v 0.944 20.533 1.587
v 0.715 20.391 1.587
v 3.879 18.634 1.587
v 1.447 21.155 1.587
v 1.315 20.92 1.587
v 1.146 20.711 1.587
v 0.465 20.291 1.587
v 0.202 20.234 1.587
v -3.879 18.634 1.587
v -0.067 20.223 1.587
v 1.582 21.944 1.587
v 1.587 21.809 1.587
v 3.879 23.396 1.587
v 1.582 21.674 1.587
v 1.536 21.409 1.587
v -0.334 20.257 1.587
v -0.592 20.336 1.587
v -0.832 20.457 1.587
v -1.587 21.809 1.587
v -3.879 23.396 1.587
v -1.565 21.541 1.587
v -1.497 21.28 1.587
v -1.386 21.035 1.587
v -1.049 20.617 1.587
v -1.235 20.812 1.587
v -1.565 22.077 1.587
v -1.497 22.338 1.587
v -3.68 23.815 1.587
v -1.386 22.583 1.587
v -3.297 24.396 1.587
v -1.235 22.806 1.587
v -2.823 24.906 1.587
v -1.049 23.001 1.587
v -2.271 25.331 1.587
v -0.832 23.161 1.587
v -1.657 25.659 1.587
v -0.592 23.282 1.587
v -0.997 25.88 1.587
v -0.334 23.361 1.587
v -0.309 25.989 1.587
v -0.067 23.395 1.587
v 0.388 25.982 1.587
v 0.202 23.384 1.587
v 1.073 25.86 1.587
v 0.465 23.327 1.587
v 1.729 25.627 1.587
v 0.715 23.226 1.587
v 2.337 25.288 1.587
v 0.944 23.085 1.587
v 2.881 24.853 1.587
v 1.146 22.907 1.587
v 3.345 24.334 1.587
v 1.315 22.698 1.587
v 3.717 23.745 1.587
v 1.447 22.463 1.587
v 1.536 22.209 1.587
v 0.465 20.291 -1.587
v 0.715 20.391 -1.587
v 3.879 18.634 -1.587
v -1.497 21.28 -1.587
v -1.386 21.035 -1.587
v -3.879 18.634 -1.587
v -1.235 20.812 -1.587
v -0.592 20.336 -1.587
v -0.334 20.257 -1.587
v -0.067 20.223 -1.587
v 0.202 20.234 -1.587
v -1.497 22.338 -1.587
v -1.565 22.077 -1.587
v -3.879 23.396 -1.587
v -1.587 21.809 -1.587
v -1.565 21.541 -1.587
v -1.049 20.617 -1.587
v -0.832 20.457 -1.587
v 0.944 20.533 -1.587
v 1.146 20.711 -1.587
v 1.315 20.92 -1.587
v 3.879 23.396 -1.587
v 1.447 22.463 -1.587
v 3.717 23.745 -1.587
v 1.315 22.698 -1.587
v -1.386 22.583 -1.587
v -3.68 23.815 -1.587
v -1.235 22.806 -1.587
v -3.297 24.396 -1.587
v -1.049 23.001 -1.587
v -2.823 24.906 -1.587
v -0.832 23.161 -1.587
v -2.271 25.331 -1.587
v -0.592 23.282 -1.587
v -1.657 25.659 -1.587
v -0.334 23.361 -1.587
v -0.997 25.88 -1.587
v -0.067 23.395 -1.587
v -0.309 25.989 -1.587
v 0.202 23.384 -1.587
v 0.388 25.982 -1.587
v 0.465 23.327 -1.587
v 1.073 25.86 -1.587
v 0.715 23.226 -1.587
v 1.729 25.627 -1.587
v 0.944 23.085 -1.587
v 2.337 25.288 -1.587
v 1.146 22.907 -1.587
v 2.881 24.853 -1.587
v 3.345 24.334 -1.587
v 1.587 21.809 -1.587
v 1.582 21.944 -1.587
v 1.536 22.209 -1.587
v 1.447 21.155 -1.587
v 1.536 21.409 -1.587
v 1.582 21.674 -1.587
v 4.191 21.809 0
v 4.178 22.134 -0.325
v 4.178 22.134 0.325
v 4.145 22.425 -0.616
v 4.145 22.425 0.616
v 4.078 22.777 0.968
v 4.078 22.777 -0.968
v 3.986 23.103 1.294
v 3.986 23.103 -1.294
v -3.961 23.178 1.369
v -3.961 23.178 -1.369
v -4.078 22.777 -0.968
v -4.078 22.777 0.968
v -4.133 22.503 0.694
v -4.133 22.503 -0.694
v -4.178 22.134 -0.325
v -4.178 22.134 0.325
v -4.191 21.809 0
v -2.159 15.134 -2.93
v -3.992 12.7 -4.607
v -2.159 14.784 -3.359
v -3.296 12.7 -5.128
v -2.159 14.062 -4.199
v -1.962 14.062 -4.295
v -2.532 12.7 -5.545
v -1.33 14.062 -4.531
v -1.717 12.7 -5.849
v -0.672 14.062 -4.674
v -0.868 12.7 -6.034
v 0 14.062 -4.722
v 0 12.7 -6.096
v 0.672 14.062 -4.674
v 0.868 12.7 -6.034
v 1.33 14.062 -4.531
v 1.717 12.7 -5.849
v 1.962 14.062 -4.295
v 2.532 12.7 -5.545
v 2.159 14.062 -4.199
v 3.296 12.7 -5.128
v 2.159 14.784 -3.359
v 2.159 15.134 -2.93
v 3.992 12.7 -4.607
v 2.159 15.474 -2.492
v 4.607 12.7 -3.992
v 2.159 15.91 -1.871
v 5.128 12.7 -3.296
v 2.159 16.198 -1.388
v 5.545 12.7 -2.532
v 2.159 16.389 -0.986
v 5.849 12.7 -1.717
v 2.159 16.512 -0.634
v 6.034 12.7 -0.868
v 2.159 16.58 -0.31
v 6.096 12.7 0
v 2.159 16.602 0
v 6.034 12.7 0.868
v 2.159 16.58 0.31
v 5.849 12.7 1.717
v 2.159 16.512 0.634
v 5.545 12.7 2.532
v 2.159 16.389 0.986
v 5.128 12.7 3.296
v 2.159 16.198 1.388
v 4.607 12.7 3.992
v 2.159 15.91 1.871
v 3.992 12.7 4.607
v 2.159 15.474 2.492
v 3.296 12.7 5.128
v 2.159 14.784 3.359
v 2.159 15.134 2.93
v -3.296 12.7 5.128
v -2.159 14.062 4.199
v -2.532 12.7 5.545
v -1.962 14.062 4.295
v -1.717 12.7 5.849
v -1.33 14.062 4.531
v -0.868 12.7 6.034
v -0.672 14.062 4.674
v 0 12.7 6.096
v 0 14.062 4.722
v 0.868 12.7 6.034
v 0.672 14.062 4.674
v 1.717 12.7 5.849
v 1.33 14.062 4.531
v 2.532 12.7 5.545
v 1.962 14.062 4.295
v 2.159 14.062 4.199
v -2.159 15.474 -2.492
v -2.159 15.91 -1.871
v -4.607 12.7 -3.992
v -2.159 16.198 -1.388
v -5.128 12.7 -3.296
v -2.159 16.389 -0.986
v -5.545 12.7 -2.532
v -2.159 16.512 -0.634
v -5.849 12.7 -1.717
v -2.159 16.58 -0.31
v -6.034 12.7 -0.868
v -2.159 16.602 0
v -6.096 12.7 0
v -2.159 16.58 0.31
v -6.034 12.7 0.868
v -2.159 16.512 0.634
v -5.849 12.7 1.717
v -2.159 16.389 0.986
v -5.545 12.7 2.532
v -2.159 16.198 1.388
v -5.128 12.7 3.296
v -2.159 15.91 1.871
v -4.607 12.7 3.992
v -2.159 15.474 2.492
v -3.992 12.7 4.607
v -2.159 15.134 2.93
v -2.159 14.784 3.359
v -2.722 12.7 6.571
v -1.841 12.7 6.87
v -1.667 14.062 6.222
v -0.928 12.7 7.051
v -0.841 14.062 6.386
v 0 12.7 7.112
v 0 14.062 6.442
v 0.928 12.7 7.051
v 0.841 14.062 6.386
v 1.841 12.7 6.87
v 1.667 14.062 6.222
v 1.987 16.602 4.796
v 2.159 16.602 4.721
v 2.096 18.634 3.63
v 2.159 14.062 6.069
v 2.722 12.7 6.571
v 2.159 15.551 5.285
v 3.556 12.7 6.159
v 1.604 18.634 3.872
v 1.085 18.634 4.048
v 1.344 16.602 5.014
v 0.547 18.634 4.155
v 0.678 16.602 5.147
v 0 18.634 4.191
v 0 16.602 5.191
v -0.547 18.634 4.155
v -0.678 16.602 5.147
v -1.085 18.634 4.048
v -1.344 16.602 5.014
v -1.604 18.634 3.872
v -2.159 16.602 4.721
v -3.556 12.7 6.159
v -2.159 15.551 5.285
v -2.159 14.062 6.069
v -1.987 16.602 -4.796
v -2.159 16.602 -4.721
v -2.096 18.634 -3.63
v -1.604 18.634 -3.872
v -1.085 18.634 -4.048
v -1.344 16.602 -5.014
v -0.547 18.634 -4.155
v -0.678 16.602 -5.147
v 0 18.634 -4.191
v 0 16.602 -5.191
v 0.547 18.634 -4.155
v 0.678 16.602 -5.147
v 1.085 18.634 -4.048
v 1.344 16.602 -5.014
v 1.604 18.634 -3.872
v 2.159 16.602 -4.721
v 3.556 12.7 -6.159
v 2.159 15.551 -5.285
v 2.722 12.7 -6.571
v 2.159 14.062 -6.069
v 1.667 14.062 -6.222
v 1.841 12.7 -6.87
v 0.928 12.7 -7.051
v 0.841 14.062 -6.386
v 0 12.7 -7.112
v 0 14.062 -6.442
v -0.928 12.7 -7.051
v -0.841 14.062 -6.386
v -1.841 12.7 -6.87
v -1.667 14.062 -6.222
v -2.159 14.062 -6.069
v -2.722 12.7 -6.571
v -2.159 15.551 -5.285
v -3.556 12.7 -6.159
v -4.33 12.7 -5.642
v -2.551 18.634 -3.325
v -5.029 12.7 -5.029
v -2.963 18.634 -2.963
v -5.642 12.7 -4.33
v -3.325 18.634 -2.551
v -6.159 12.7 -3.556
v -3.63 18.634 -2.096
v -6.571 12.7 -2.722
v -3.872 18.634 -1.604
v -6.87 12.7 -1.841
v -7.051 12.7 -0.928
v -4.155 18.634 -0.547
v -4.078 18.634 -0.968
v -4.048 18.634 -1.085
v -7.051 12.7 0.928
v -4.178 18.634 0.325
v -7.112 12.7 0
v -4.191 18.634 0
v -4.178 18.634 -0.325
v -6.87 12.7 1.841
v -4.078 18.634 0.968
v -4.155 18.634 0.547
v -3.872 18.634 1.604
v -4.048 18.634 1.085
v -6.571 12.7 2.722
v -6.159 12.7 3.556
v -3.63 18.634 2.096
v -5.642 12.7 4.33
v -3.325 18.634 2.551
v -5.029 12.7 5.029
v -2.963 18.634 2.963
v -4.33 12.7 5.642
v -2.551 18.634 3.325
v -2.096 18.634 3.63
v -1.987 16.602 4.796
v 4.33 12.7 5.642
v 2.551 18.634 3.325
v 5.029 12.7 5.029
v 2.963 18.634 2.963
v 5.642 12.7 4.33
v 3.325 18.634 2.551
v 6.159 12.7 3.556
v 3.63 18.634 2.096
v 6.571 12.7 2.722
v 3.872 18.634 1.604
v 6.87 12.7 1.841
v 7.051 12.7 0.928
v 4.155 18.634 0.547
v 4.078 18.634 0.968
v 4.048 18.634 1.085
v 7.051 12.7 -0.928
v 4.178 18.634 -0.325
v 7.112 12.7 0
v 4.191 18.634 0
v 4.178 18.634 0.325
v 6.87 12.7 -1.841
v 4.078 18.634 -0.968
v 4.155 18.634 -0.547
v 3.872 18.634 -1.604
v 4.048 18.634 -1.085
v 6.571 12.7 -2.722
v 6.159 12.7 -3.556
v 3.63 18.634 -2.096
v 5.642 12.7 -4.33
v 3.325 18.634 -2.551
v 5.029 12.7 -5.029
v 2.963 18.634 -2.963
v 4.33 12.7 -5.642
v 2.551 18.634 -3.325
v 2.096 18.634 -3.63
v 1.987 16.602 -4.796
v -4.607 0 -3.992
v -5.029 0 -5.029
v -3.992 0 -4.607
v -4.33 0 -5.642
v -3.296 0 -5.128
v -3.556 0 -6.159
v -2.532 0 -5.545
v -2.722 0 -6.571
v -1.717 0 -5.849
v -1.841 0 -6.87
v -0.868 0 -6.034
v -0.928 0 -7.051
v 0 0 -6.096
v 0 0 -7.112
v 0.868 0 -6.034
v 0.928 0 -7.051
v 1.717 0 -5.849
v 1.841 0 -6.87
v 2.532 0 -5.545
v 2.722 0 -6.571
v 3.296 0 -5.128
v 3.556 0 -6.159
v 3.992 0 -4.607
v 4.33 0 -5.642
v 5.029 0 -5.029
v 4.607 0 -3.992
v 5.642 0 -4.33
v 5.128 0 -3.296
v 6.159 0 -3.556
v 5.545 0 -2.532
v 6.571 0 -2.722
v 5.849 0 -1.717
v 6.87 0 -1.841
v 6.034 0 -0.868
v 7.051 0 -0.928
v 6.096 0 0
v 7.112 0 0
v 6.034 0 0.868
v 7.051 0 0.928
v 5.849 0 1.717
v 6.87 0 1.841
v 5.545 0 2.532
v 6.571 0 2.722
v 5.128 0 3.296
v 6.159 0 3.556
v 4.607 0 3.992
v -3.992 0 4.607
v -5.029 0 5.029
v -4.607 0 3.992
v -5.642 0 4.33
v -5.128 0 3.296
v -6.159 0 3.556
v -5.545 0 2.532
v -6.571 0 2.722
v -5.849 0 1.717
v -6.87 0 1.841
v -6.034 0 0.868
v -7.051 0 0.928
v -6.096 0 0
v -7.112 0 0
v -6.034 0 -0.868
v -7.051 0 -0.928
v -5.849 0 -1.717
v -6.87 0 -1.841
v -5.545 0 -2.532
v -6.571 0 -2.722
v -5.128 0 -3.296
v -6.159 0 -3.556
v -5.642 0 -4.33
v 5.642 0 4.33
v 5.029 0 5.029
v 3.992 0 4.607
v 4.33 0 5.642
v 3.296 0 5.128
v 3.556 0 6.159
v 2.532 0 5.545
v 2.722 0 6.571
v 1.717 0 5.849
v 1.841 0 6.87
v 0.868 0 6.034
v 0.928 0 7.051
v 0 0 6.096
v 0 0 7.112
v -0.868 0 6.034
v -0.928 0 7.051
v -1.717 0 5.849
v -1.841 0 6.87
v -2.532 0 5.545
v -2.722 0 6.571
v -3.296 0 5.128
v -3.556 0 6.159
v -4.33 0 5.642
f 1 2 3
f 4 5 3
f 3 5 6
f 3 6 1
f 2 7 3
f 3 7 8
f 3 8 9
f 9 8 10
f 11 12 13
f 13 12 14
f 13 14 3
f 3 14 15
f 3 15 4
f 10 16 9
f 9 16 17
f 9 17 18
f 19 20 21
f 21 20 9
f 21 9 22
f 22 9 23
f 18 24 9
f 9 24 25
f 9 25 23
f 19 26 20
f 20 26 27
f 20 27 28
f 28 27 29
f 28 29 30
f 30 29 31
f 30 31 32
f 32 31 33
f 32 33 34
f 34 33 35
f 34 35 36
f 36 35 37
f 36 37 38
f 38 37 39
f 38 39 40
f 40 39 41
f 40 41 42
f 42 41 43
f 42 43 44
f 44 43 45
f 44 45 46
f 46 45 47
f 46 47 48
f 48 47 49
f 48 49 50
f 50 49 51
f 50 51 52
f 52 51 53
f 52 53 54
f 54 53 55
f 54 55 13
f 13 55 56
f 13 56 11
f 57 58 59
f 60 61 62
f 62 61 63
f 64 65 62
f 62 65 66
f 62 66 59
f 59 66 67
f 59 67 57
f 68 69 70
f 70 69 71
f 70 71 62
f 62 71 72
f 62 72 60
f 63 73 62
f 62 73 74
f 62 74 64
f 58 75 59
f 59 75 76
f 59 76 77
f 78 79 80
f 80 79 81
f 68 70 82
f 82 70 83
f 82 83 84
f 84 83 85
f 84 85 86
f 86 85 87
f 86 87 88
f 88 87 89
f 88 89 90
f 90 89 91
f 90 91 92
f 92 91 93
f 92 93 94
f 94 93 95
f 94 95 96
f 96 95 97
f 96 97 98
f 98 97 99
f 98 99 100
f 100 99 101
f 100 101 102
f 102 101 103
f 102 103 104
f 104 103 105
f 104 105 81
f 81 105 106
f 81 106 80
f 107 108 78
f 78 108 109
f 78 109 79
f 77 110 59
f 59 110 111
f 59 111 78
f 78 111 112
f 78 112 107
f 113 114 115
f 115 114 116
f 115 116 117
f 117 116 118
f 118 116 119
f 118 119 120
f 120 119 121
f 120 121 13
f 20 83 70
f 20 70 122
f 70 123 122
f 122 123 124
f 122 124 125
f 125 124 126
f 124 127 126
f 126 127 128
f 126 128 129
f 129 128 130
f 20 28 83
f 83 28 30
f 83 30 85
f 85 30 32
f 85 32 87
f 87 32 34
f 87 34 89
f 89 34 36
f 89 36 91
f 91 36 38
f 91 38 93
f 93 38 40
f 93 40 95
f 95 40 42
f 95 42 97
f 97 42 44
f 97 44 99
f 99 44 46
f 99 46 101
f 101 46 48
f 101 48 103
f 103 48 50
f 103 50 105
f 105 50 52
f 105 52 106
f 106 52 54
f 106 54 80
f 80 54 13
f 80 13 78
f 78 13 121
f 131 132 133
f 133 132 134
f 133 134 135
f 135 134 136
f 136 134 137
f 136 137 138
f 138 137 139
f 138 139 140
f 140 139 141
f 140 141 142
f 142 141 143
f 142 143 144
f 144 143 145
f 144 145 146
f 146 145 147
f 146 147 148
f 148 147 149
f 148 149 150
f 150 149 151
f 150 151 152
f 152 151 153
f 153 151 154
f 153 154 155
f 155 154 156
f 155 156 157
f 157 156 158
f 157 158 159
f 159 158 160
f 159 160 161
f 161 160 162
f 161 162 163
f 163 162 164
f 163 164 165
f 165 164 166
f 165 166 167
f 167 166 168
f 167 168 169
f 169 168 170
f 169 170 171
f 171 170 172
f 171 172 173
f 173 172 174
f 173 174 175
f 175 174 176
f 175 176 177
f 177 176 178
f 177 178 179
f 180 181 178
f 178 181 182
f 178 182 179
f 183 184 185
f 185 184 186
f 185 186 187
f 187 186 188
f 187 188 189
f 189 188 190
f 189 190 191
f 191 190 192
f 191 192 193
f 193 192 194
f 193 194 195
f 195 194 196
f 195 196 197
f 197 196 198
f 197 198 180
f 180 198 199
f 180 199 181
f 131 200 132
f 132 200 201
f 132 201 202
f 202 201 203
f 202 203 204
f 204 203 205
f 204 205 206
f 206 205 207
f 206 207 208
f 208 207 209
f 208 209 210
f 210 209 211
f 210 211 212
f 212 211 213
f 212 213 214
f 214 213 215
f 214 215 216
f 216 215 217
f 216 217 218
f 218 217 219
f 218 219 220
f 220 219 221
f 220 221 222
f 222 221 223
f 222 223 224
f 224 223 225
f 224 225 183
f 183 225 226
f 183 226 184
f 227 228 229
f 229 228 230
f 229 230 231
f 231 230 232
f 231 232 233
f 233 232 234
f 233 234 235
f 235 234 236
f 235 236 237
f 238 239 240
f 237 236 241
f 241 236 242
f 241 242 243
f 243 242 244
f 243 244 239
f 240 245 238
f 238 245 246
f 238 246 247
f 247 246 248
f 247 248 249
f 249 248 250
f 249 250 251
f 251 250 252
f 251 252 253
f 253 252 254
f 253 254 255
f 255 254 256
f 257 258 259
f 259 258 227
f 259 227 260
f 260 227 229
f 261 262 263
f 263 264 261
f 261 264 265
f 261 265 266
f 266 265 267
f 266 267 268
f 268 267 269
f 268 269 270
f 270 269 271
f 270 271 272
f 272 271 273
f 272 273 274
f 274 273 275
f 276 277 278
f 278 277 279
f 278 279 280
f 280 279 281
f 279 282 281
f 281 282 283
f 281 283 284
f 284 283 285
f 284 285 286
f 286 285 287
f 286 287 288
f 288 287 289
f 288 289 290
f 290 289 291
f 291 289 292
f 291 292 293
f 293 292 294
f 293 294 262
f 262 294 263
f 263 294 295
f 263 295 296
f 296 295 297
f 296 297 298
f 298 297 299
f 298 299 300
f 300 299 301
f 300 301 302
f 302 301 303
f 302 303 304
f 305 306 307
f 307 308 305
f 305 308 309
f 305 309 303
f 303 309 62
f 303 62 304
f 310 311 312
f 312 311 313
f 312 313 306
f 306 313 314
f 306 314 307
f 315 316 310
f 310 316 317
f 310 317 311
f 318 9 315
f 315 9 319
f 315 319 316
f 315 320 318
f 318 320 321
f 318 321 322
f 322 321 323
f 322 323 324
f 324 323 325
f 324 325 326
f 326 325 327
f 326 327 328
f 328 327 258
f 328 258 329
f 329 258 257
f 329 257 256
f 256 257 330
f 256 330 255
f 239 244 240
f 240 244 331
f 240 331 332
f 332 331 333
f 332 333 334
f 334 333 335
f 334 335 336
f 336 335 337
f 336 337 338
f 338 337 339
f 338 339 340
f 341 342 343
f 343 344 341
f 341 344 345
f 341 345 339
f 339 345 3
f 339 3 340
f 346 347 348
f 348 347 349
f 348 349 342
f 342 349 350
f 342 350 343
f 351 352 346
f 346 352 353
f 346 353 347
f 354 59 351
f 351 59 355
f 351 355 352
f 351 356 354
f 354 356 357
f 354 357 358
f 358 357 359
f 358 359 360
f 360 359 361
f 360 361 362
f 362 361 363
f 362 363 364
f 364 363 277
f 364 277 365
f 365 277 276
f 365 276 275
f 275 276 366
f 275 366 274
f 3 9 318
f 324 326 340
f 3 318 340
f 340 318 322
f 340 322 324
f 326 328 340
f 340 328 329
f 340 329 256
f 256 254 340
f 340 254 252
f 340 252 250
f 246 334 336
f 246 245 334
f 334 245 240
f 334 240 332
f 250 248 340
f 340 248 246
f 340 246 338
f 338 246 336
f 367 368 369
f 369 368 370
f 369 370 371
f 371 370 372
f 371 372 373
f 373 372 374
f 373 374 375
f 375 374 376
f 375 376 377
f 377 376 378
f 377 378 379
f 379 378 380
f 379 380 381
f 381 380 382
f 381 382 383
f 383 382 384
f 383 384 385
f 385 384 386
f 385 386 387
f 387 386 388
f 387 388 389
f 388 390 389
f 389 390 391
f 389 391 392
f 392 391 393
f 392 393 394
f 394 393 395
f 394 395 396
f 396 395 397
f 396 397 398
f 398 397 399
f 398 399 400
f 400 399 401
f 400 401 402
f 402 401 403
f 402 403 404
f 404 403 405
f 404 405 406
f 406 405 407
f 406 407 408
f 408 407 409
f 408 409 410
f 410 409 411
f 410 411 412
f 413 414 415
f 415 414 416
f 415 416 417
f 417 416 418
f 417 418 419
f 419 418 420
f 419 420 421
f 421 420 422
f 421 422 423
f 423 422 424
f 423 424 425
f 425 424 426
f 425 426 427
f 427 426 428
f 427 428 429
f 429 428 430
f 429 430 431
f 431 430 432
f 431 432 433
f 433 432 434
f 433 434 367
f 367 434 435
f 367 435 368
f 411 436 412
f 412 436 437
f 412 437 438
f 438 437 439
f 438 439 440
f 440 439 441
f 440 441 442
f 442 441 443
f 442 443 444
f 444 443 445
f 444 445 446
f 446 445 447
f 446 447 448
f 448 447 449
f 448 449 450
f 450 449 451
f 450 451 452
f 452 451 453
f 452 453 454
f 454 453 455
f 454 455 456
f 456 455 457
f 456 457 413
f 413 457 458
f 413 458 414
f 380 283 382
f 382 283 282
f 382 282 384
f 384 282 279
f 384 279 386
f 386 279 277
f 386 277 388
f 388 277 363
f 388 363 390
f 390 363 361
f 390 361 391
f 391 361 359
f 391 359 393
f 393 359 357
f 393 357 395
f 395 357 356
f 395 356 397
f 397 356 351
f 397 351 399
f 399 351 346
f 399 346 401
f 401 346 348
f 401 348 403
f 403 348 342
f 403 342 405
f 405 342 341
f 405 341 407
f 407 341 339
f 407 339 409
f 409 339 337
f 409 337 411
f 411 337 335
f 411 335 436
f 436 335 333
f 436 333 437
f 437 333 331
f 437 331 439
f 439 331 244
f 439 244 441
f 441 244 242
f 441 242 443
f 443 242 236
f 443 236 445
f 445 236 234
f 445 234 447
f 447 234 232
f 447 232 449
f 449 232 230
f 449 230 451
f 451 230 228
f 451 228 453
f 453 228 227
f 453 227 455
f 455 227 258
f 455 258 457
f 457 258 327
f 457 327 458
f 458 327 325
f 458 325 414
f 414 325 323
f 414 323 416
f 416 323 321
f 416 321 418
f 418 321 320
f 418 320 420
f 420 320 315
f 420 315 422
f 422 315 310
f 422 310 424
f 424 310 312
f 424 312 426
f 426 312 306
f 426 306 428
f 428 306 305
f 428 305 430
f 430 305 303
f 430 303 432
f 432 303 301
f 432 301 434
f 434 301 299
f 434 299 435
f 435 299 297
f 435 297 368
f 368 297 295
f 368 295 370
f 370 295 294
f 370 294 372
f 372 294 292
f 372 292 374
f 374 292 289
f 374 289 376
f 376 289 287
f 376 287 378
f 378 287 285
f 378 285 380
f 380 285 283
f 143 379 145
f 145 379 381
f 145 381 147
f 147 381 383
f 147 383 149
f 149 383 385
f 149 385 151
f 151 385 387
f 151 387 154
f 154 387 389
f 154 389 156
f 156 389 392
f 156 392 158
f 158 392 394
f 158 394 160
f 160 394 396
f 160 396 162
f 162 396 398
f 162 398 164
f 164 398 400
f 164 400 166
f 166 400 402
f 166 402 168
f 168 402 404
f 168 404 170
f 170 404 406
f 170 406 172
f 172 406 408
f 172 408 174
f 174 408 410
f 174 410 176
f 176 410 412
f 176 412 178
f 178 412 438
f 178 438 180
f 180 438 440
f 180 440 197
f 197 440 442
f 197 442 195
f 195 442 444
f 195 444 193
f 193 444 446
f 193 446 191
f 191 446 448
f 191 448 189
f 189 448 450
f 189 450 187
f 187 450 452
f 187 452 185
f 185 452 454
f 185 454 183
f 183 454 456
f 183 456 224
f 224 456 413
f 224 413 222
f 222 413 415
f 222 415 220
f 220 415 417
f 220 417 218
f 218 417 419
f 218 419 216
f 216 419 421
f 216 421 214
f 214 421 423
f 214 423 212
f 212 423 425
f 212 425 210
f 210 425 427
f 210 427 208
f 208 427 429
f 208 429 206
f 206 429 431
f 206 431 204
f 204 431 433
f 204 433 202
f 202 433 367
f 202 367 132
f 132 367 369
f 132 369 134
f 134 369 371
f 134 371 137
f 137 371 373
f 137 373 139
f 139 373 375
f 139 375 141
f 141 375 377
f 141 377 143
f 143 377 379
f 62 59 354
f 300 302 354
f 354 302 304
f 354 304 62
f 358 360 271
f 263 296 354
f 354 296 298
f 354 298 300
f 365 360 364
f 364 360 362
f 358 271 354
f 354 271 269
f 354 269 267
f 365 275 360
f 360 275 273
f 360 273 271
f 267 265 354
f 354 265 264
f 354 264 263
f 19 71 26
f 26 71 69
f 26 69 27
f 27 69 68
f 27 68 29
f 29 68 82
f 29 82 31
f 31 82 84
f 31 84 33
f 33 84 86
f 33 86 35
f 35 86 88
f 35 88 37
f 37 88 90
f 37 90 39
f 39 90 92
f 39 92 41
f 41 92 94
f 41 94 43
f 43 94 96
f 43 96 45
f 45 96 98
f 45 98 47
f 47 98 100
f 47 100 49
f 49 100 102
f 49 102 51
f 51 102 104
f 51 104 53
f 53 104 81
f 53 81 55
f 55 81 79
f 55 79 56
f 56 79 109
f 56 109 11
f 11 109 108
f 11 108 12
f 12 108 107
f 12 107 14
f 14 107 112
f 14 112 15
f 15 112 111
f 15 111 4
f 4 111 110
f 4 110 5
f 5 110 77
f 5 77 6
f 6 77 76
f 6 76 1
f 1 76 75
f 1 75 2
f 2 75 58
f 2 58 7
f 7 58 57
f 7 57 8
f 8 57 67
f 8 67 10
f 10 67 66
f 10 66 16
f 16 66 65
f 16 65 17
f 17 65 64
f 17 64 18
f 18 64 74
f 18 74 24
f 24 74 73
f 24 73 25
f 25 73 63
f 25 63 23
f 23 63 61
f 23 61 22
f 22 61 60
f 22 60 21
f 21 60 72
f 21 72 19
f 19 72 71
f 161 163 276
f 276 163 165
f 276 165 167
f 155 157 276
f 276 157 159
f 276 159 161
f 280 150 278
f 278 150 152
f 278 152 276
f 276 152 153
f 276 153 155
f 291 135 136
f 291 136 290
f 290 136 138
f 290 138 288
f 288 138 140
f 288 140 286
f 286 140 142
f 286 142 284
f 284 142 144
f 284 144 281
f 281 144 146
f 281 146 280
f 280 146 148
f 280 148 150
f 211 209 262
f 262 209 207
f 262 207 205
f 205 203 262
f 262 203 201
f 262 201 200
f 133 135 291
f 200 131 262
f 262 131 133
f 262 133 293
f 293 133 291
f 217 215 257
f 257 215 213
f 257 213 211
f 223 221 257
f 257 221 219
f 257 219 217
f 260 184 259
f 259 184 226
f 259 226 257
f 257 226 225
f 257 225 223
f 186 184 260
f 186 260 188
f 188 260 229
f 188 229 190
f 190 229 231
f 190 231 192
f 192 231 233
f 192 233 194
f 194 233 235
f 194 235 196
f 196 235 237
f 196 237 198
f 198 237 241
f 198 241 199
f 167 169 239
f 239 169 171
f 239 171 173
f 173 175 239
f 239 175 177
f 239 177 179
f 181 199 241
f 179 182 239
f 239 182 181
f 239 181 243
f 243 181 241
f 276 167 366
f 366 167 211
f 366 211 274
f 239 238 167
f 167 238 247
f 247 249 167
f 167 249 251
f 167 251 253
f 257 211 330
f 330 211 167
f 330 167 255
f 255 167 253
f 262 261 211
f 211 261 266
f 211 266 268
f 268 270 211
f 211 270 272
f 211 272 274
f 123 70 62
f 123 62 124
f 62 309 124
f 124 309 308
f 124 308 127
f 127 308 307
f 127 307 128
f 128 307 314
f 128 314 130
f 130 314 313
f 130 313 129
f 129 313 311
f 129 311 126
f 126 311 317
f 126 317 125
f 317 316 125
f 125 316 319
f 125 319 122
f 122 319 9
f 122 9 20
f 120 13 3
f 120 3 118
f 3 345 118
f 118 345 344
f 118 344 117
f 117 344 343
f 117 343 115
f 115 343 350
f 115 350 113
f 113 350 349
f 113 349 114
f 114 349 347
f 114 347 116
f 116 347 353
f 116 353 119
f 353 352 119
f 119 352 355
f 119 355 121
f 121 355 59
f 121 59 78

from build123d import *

# Parameters (mm, degrees)
SKETCH1_R           = 7.112
SKETCH1_R_2         = 6.096
BOSS_EXTRUDE1_DEPTH = 12.7
SKETCH3_R           = 1.5875
BOSS_EXTRUDE3_DEPTH = 1.5875
CUT_EXTRUDE1_DEPTH  = 12.7
SKETCH5_OUTSIDE_W   = 22.798
SKETCH5_OUTSIDE_H   = 22.798
SKETCH5_OUTSIDE_R   = 4.191
CUT_EXTRUDE3_DEPTH  = 25.4


with BuildPart() as part:
    # Sketch1 → Boss-Extrude1 (new body)
    with BuildSketch(Plane(origin=(0, 0, 0), x_dir=(1, 0, 0), z_dir=(0, 1, 0))):
        Circle(SKETCH1_R)
        Circle(SKETCH1_R_2, mode=Mode.SUBTRACT)
    extrude(amount=BOSS_EXTRUDE1_DEPTH)

    # Sketch2 → Revolve2 (revolve)
    with BuildSketch(Plane.XY):
        Polygon((-7.112, 12.7), (-6.096, 12.7), (-2.159, 16.601959342), (0, 16.601959342), (0, 18.633959342), (-4.191, 18.633959342), align=None)
    revolve(axis=Axis((0, 16.601959342, 0), (0, 1, 0)))

    # Sketch3 → Boss-Extrude3 (add, symmetric)
    with BuildSketch(Plane.XY):
        with BuildLine():
            Line((-4.191, 18.633959342), (-4.191, 21.808959342))
            ThreePointArc((-4.191, 21.808959342), (0, 25.999959342), (4.191, 21.808959342))
            Line((4.191, 21.808959342), (4.191, 18.633959342))
            Line((4.191, 18.633959342), (-4.191, 18.633959342))
        make_face()
        with Locations((0, 21.808959342)):
            Circle(SKETCH3_R, mode=Mode.SUBTRACT)
    extrude(amount=BOSS_EXTRUDE3_DEPTH, both=True)

    # Sketch4 → Cut-Extrude1 (cut, symmetric)
    with BuildSketch(Plane.XY):
        Polygon((0, 16.601959342), (2.159, 16.601959342), (2.159, 14.061959342), (-2.159, 14.061959342), (-2.159, 16.601959342), align=None)
    extrude(amount=CUT_EXTRUDE1_DEPTH, both=True, mode=Mode.SUBTRACT)

    # Sketch5 outside → Cut-Extrude3 (cut)
    with BuildSketch(Plane.XZ.offset(-18.633959342)):
        Rectangle(SKETCH5_OUTSIDE_W, SKETCH5_OUTSIDE_H)
        Circle(SKETCH5_OUTSIDE_R, mode=Mode.SUBTRACT)
    extrude(amount=-CUT_EXTRUDE3_DEPTH, mode=Mode.SUBTRACT)


solid = part.part
